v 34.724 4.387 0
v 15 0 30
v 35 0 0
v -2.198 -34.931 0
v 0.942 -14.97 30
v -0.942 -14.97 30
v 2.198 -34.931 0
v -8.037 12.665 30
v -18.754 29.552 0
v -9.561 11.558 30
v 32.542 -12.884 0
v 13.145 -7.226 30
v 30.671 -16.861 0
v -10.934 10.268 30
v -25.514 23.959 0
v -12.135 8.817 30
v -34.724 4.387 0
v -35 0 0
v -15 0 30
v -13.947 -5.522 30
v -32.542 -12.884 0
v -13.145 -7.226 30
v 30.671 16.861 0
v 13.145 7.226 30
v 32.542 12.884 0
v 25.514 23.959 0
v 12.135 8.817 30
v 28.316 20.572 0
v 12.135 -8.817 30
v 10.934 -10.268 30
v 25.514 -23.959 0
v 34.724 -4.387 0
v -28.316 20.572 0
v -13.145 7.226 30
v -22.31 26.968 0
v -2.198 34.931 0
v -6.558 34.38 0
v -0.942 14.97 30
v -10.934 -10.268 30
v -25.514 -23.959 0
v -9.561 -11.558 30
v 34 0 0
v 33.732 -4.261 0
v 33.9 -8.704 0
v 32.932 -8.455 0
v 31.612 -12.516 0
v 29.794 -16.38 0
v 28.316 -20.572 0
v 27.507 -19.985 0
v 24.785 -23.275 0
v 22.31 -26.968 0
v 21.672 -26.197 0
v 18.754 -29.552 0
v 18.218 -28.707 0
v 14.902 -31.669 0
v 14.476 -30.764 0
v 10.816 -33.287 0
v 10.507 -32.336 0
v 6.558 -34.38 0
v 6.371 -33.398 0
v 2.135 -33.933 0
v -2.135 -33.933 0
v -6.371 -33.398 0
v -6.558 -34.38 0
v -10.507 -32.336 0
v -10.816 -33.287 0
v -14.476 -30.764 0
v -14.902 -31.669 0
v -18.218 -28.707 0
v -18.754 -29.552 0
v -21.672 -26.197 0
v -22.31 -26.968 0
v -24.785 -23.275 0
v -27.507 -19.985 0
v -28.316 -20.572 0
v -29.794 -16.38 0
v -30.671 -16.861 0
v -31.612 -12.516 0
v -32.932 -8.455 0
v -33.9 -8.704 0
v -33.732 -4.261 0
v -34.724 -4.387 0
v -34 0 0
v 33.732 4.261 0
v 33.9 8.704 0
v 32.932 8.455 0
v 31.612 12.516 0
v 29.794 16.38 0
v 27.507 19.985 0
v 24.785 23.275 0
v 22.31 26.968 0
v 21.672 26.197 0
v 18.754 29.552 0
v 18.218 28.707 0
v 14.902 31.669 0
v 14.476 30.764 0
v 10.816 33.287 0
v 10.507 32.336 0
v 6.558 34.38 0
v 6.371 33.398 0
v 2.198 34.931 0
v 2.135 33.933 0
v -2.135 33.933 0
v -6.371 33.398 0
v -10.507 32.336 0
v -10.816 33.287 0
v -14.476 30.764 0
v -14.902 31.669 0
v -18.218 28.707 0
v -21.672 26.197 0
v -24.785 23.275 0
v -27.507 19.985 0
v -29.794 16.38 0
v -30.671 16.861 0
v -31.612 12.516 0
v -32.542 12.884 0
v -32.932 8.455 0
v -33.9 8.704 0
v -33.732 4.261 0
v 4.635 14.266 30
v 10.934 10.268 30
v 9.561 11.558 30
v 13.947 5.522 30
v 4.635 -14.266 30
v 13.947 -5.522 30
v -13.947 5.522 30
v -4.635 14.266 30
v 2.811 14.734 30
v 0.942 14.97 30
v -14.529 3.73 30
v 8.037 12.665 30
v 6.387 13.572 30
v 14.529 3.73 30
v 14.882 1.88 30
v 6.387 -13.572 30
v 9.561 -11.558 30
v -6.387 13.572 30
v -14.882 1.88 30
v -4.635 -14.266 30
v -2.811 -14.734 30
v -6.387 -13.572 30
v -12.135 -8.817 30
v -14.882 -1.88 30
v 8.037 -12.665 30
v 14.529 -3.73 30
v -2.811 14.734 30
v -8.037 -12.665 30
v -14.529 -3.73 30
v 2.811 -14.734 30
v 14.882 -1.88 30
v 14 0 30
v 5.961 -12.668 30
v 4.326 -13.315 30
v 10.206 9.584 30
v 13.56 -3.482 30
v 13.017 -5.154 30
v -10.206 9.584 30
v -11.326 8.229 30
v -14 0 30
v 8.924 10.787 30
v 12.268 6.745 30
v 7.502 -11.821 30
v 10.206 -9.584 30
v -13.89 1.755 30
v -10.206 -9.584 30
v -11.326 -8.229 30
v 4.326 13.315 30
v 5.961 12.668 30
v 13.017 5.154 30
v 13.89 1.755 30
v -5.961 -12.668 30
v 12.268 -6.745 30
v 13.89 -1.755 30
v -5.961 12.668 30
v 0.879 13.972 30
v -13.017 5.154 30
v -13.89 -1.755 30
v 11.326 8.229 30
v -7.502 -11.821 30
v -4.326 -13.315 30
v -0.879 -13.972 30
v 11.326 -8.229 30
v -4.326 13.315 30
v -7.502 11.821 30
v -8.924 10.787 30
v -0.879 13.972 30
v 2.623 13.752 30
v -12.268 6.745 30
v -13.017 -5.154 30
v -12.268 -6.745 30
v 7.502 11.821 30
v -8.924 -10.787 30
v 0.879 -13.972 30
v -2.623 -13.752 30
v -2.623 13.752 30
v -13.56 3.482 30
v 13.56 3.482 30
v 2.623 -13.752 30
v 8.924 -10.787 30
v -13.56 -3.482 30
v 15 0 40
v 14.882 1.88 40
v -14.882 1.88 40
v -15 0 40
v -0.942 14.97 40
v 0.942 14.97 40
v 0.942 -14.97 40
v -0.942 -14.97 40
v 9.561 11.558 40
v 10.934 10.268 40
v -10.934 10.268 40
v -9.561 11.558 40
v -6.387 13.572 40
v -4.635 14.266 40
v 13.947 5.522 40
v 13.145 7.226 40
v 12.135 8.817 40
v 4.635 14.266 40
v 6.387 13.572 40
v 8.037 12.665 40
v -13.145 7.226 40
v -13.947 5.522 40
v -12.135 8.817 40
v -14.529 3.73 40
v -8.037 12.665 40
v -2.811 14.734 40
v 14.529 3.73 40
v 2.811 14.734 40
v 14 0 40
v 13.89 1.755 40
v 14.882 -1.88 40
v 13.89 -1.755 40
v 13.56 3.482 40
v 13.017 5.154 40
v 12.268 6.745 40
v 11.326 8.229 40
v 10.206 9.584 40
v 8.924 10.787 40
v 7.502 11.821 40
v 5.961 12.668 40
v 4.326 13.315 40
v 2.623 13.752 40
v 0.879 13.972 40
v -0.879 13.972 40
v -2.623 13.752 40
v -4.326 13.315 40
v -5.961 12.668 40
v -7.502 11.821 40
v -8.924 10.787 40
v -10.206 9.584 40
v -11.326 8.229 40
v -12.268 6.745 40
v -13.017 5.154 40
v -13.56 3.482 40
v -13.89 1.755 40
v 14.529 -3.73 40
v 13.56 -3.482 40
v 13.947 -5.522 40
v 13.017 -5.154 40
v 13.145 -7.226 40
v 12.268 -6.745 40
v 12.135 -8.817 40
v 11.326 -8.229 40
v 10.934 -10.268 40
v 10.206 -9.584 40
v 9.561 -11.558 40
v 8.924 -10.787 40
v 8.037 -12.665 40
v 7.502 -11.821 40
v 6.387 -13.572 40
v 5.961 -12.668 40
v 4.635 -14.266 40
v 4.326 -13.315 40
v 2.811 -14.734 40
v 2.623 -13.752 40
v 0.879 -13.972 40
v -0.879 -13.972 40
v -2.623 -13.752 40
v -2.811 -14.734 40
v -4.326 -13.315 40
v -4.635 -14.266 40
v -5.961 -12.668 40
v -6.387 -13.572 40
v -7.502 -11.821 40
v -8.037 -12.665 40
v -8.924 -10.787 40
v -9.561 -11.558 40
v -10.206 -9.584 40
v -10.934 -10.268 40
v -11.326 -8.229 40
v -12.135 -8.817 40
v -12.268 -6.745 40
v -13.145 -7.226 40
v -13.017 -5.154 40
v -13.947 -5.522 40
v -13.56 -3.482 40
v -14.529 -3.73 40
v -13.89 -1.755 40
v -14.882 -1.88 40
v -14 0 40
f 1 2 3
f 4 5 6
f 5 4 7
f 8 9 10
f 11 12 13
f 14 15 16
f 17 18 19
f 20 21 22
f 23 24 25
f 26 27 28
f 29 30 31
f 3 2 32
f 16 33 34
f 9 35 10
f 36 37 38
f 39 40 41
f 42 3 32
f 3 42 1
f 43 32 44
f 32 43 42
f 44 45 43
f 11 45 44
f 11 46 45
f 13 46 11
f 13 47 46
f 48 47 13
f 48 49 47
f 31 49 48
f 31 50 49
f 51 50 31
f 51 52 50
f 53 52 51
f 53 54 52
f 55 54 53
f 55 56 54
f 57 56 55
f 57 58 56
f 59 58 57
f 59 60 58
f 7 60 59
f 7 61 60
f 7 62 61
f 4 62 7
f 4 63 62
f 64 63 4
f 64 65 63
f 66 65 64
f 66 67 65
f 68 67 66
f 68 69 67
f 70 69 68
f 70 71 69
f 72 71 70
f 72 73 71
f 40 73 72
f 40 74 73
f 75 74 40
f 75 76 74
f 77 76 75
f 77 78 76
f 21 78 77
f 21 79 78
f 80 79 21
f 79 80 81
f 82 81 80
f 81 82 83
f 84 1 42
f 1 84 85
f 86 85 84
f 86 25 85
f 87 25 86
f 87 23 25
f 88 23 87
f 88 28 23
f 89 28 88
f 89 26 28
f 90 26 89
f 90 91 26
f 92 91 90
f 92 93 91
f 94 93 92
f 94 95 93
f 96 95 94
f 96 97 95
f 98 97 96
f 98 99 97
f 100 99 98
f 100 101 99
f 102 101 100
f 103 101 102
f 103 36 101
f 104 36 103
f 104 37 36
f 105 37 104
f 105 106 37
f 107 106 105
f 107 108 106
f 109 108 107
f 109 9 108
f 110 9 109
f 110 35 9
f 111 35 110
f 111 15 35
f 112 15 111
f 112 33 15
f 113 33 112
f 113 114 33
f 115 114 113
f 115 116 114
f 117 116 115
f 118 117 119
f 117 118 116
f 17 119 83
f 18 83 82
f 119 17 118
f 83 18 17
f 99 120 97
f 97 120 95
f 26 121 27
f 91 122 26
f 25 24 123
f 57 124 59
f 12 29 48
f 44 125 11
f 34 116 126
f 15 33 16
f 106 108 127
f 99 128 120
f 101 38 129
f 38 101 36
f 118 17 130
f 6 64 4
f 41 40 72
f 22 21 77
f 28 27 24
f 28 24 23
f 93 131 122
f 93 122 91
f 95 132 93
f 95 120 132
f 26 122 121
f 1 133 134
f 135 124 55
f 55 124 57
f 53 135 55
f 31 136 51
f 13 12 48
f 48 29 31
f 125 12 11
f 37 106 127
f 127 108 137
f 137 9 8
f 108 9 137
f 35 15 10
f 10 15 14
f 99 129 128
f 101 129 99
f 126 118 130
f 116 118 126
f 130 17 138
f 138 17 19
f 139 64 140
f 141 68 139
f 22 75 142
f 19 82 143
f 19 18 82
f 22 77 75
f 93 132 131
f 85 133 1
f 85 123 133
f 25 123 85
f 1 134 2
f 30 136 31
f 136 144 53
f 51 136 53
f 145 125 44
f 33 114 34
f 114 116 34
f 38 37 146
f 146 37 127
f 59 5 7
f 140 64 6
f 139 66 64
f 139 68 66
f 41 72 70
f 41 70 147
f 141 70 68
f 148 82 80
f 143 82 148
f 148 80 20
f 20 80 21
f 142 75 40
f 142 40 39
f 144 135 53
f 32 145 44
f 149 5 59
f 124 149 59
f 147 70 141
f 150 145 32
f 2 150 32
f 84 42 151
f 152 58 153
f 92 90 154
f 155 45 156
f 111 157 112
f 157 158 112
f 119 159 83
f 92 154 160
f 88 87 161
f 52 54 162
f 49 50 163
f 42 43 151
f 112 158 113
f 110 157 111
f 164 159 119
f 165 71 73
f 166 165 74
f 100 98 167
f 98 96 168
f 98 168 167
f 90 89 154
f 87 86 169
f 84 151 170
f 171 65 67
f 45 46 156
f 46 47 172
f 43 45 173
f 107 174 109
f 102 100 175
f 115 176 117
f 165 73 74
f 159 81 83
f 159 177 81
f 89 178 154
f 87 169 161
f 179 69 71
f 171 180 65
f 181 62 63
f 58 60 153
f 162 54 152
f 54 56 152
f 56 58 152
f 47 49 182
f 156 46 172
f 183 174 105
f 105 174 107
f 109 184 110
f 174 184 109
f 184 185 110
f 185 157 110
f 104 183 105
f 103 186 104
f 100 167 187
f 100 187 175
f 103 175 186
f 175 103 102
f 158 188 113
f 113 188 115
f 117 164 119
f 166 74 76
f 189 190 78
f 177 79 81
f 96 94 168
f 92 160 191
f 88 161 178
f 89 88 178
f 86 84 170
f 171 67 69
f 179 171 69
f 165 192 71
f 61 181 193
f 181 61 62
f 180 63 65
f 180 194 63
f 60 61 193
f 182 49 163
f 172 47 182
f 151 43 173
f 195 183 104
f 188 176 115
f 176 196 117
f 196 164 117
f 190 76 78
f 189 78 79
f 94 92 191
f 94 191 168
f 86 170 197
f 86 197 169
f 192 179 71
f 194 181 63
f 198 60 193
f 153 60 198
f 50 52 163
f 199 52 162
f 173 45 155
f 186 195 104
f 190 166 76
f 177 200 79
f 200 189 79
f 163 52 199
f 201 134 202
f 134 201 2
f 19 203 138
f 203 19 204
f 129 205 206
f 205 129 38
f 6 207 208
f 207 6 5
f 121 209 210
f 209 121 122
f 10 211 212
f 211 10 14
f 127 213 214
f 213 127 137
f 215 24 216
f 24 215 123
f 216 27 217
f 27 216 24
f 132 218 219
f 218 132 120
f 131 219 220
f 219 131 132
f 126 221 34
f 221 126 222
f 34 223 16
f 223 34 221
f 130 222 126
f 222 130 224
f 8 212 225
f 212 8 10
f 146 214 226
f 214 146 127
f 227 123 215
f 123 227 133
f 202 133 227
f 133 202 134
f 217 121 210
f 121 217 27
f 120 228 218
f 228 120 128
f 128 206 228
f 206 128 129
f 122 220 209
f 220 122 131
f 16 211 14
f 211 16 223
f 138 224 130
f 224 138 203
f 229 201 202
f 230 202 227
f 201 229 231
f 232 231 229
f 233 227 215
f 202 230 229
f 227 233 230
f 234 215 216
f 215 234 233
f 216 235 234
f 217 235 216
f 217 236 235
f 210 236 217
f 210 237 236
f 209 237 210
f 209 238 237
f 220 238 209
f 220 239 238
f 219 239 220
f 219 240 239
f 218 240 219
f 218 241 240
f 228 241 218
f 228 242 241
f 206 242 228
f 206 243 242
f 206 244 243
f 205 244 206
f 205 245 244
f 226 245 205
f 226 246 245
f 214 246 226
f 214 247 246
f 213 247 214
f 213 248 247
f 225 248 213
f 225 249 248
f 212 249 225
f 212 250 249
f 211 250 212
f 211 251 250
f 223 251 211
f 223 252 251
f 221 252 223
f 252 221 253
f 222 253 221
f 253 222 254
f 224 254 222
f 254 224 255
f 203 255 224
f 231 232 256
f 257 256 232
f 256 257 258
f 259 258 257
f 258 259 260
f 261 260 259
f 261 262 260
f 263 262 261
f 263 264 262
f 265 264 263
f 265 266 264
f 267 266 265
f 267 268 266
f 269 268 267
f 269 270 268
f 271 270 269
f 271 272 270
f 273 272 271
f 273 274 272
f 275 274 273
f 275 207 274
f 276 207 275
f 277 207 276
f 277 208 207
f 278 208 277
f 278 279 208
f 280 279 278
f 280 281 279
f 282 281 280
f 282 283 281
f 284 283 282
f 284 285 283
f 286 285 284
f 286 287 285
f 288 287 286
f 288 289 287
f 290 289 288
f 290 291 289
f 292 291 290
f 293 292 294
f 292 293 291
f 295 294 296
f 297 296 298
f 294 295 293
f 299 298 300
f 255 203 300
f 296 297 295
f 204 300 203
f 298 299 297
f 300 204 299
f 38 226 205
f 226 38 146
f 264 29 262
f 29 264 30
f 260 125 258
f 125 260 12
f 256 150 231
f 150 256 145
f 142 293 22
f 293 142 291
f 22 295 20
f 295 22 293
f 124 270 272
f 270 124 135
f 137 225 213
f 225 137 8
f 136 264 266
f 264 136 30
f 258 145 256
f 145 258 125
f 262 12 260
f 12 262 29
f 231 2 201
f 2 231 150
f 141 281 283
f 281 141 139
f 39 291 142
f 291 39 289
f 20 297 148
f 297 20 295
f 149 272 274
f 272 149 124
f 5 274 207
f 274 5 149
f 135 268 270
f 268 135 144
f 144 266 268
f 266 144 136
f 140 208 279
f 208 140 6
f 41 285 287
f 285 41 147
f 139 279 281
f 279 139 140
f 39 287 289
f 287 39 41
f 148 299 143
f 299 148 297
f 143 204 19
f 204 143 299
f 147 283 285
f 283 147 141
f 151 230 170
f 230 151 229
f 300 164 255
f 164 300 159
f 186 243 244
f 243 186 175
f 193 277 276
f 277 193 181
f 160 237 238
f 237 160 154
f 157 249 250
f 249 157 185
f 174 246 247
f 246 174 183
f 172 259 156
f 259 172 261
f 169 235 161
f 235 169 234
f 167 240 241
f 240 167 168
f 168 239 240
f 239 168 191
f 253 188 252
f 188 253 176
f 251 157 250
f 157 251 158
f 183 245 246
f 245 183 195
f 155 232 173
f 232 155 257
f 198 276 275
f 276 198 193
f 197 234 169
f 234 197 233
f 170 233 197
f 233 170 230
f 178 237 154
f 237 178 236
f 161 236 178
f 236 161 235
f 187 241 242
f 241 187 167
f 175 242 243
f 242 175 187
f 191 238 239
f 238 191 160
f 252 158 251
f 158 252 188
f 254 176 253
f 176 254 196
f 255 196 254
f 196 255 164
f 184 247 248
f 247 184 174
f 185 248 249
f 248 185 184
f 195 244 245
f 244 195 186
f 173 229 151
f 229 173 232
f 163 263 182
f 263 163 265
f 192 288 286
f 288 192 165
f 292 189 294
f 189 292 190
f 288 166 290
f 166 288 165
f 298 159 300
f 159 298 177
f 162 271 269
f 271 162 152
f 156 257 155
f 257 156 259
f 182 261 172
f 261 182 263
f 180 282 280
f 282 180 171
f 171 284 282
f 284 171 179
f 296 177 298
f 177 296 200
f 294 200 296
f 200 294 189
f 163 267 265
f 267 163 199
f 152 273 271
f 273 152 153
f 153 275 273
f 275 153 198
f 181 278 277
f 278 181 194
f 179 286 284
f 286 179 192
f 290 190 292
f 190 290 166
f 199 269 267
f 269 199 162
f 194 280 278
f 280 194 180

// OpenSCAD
$fn = 50;


difference() {
	union() {
		translate(v = [0, 0, 0]) {
			rotate(a = [0, 0, 0]) {
				difference() {
					union() {
						cylinder(h = 30, r1 = 35.0000000000, r2 = 15.0000000000);
					}
					union() {
						cylinder(h = 30, r1 = 34.0000000000, r2 = 14.0000000000);
					}
				}
			}
		}
		translate(v = [0, 0, 30]) {
			rotate(a = [0, 0, 0]) {
				difference() {
					union() {
						cylinder(h = 10, r = 15.0000000000);
					}
					union() {
						cylinder(h = 10, r = 14.0000000000);
					}
				}
			}
		}
	}
	union();
}
